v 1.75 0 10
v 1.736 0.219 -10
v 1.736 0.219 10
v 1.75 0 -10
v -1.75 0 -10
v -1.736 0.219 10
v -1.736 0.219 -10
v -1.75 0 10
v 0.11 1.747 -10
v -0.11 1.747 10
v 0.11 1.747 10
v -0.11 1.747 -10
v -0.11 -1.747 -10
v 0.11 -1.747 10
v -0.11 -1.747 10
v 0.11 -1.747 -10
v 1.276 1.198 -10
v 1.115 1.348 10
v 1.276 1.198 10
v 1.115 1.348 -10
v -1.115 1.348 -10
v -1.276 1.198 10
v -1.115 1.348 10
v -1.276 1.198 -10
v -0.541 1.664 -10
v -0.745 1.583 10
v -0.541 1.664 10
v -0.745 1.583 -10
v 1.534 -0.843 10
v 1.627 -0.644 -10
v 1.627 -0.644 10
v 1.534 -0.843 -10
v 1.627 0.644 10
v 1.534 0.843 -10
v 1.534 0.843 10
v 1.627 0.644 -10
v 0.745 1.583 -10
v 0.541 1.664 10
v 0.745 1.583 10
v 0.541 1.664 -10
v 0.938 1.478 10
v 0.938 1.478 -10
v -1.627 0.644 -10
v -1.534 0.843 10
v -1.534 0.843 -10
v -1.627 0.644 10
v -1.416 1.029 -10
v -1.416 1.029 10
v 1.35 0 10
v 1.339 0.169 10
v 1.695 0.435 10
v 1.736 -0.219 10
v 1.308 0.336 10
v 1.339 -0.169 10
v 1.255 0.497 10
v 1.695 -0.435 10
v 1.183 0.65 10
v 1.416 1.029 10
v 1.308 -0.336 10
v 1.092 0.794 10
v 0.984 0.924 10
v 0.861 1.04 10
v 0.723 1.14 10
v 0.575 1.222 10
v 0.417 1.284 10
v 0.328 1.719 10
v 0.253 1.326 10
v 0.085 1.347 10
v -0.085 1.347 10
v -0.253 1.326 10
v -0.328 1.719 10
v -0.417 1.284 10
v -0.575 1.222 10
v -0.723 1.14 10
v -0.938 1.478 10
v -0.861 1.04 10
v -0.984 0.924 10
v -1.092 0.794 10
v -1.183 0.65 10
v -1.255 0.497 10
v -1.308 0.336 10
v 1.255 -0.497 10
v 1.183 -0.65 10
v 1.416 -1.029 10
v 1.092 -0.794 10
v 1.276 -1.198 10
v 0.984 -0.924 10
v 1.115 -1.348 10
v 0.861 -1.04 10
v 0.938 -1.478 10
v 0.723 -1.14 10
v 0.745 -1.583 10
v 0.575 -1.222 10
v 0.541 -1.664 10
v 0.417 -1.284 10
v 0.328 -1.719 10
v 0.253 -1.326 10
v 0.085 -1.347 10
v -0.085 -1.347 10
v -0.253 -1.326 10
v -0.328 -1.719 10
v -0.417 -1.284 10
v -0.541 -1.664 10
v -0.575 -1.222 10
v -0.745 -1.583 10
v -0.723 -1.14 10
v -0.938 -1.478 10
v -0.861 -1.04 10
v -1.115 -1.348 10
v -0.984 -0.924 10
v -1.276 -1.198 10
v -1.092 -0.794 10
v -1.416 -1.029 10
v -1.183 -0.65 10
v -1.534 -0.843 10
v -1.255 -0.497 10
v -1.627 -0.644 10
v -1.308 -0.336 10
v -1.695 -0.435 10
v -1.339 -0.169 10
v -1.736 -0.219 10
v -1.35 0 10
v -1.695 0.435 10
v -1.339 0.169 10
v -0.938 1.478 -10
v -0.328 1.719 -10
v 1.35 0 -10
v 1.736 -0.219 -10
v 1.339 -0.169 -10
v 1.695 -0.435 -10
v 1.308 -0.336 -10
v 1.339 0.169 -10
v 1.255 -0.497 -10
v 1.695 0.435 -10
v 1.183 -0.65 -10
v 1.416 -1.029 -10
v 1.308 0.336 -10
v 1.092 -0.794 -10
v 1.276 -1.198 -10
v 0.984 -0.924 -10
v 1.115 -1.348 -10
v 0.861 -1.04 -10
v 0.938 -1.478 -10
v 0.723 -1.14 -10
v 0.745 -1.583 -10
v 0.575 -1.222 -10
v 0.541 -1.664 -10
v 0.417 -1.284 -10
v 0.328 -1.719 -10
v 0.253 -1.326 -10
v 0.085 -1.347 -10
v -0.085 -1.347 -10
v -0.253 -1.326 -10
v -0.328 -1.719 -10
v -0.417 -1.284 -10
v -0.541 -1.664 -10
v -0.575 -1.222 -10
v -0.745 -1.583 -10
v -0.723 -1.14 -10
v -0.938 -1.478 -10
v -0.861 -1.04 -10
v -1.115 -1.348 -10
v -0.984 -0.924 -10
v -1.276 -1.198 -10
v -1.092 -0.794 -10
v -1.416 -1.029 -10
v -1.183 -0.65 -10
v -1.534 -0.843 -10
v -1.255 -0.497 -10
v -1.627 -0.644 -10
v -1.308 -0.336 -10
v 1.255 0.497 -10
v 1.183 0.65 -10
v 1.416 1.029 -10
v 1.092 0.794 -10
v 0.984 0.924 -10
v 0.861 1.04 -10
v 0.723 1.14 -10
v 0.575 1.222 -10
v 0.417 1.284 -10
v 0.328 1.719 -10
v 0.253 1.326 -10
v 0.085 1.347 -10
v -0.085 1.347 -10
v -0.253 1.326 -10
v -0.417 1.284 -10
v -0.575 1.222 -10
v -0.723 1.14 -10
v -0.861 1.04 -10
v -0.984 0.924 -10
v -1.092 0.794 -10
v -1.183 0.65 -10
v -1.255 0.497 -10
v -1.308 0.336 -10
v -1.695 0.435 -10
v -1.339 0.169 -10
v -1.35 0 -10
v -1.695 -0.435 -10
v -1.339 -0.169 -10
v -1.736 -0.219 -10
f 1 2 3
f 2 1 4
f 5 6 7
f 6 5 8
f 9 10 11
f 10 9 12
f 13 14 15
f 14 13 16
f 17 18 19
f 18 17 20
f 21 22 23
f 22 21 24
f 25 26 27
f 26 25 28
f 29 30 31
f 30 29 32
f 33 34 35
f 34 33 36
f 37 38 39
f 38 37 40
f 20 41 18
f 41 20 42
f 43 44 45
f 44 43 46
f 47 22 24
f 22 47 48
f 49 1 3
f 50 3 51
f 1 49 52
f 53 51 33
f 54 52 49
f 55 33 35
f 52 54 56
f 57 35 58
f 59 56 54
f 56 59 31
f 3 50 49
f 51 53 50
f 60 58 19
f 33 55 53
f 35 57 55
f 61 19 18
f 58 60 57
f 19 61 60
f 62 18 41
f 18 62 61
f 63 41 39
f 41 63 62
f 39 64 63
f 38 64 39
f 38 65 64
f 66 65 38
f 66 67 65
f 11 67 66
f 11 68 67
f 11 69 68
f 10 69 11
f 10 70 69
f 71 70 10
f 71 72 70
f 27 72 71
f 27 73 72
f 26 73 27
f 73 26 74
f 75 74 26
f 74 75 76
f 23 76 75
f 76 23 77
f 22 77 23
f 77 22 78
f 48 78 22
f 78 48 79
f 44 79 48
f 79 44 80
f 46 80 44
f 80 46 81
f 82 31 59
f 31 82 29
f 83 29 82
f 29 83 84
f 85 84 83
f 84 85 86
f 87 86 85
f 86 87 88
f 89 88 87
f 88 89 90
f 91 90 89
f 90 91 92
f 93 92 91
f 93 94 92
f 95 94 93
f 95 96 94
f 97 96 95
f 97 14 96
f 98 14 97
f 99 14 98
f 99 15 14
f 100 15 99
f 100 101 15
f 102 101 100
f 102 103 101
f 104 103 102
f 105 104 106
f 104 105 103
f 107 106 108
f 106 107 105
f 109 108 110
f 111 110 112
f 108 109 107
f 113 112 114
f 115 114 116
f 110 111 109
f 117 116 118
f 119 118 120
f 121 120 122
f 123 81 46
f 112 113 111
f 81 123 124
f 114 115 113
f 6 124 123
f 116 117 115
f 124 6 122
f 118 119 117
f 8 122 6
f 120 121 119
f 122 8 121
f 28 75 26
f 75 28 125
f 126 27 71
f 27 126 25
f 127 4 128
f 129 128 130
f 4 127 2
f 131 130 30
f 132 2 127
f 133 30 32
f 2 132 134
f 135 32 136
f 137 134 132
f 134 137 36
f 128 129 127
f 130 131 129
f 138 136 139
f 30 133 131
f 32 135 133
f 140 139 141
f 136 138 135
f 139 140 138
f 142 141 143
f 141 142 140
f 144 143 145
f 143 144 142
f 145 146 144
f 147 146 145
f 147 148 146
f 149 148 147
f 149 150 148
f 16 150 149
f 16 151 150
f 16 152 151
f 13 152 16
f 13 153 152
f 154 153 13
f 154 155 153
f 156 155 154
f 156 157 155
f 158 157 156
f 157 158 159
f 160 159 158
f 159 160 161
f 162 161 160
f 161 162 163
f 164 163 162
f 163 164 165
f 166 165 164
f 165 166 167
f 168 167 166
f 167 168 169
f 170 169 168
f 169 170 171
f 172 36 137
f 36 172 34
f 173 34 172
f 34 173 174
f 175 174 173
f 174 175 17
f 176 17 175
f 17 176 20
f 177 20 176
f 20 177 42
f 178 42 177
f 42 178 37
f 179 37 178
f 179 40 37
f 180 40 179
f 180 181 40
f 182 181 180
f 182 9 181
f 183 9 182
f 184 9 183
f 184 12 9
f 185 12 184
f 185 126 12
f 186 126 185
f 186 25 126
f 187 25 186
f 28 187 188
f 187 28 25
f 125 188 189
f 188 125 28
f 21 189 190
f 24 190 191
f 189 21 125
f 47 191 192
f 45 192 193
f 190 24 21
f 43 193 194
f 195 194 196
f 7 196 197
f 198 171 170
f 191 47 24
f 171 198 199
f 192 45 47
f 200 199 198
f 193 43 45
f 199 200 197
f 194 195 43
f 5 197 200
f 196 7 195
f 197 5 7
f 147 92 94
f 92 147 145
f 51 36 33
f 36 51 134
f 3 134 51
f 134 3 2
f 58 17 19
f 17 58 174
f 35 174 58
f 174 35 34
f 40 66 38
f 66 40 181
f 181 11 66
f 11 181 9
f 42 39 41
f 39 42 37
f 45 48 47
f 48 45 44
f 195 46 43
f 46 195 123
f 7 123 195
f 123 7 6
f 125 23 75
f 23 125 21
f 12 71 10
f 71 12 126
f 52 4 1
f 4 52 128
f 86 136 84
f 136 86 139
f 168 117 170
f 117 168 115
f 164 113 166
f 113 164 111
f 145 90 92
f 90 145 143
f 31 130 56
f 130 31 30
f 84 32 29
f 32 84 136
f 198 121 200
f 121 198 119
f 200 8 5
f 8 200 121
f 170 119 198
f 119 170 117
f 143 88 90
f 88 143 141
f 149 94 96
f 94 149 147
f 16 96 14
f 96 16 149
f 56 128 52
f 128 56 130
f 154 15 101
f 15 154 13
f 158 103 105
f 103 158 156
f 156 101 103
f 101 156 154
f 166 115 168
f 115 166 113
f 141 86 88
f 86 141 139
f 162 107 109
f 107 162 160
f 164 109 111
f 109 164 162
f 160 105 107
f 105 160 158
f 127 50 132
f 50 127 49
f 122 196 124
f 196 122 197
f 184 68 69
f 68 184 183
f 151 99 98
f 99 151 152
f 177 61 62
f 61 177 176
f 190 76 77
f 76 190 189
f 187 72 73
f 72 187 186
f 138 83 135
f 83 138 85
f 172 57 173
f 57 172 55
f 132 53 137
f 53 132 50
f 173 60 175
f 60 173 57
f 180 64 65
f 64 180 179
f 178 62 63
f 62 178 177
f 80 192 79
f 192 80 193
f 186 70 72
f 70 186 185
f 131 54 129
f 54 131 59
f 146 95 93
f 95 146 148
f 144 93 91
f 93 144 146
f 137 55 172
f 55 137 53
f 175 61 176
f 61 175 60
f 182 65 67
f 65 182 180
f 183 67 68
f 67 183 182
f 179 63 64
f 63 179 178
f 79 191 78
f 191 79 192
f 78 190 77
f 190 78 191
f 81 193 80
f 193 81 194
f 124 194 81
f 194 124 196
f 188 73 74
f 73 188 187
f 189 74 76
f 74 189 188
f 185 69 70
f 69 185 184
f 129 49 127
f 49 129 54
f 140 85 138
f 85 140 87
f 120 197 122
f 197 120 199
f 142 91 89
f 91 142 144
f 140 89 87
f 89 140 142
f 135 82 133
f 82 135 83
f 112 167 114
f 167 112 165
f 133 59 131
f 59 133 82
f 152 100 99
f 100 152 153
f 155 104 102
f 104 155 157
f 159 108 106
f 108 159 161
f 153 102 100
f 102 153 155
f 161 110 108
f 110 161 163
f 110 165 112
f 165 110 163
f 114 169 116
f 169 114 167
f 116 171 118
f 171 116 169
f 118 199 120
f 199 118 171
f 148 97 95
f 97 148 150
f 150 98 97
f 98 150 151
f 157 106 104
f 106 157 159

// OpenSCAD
$fn = 50;


difference() {
	union() {
		translate(v = [0, 0, -10.0000000000]) {
			cylinder(h = 20, r = 1.7500000000);
		}
	}
	union() {
		translate(v = [0, 0, -100.0000000000]) {
			cylinder(h = 200, r = 1.3500000000);
		}
	}
}
